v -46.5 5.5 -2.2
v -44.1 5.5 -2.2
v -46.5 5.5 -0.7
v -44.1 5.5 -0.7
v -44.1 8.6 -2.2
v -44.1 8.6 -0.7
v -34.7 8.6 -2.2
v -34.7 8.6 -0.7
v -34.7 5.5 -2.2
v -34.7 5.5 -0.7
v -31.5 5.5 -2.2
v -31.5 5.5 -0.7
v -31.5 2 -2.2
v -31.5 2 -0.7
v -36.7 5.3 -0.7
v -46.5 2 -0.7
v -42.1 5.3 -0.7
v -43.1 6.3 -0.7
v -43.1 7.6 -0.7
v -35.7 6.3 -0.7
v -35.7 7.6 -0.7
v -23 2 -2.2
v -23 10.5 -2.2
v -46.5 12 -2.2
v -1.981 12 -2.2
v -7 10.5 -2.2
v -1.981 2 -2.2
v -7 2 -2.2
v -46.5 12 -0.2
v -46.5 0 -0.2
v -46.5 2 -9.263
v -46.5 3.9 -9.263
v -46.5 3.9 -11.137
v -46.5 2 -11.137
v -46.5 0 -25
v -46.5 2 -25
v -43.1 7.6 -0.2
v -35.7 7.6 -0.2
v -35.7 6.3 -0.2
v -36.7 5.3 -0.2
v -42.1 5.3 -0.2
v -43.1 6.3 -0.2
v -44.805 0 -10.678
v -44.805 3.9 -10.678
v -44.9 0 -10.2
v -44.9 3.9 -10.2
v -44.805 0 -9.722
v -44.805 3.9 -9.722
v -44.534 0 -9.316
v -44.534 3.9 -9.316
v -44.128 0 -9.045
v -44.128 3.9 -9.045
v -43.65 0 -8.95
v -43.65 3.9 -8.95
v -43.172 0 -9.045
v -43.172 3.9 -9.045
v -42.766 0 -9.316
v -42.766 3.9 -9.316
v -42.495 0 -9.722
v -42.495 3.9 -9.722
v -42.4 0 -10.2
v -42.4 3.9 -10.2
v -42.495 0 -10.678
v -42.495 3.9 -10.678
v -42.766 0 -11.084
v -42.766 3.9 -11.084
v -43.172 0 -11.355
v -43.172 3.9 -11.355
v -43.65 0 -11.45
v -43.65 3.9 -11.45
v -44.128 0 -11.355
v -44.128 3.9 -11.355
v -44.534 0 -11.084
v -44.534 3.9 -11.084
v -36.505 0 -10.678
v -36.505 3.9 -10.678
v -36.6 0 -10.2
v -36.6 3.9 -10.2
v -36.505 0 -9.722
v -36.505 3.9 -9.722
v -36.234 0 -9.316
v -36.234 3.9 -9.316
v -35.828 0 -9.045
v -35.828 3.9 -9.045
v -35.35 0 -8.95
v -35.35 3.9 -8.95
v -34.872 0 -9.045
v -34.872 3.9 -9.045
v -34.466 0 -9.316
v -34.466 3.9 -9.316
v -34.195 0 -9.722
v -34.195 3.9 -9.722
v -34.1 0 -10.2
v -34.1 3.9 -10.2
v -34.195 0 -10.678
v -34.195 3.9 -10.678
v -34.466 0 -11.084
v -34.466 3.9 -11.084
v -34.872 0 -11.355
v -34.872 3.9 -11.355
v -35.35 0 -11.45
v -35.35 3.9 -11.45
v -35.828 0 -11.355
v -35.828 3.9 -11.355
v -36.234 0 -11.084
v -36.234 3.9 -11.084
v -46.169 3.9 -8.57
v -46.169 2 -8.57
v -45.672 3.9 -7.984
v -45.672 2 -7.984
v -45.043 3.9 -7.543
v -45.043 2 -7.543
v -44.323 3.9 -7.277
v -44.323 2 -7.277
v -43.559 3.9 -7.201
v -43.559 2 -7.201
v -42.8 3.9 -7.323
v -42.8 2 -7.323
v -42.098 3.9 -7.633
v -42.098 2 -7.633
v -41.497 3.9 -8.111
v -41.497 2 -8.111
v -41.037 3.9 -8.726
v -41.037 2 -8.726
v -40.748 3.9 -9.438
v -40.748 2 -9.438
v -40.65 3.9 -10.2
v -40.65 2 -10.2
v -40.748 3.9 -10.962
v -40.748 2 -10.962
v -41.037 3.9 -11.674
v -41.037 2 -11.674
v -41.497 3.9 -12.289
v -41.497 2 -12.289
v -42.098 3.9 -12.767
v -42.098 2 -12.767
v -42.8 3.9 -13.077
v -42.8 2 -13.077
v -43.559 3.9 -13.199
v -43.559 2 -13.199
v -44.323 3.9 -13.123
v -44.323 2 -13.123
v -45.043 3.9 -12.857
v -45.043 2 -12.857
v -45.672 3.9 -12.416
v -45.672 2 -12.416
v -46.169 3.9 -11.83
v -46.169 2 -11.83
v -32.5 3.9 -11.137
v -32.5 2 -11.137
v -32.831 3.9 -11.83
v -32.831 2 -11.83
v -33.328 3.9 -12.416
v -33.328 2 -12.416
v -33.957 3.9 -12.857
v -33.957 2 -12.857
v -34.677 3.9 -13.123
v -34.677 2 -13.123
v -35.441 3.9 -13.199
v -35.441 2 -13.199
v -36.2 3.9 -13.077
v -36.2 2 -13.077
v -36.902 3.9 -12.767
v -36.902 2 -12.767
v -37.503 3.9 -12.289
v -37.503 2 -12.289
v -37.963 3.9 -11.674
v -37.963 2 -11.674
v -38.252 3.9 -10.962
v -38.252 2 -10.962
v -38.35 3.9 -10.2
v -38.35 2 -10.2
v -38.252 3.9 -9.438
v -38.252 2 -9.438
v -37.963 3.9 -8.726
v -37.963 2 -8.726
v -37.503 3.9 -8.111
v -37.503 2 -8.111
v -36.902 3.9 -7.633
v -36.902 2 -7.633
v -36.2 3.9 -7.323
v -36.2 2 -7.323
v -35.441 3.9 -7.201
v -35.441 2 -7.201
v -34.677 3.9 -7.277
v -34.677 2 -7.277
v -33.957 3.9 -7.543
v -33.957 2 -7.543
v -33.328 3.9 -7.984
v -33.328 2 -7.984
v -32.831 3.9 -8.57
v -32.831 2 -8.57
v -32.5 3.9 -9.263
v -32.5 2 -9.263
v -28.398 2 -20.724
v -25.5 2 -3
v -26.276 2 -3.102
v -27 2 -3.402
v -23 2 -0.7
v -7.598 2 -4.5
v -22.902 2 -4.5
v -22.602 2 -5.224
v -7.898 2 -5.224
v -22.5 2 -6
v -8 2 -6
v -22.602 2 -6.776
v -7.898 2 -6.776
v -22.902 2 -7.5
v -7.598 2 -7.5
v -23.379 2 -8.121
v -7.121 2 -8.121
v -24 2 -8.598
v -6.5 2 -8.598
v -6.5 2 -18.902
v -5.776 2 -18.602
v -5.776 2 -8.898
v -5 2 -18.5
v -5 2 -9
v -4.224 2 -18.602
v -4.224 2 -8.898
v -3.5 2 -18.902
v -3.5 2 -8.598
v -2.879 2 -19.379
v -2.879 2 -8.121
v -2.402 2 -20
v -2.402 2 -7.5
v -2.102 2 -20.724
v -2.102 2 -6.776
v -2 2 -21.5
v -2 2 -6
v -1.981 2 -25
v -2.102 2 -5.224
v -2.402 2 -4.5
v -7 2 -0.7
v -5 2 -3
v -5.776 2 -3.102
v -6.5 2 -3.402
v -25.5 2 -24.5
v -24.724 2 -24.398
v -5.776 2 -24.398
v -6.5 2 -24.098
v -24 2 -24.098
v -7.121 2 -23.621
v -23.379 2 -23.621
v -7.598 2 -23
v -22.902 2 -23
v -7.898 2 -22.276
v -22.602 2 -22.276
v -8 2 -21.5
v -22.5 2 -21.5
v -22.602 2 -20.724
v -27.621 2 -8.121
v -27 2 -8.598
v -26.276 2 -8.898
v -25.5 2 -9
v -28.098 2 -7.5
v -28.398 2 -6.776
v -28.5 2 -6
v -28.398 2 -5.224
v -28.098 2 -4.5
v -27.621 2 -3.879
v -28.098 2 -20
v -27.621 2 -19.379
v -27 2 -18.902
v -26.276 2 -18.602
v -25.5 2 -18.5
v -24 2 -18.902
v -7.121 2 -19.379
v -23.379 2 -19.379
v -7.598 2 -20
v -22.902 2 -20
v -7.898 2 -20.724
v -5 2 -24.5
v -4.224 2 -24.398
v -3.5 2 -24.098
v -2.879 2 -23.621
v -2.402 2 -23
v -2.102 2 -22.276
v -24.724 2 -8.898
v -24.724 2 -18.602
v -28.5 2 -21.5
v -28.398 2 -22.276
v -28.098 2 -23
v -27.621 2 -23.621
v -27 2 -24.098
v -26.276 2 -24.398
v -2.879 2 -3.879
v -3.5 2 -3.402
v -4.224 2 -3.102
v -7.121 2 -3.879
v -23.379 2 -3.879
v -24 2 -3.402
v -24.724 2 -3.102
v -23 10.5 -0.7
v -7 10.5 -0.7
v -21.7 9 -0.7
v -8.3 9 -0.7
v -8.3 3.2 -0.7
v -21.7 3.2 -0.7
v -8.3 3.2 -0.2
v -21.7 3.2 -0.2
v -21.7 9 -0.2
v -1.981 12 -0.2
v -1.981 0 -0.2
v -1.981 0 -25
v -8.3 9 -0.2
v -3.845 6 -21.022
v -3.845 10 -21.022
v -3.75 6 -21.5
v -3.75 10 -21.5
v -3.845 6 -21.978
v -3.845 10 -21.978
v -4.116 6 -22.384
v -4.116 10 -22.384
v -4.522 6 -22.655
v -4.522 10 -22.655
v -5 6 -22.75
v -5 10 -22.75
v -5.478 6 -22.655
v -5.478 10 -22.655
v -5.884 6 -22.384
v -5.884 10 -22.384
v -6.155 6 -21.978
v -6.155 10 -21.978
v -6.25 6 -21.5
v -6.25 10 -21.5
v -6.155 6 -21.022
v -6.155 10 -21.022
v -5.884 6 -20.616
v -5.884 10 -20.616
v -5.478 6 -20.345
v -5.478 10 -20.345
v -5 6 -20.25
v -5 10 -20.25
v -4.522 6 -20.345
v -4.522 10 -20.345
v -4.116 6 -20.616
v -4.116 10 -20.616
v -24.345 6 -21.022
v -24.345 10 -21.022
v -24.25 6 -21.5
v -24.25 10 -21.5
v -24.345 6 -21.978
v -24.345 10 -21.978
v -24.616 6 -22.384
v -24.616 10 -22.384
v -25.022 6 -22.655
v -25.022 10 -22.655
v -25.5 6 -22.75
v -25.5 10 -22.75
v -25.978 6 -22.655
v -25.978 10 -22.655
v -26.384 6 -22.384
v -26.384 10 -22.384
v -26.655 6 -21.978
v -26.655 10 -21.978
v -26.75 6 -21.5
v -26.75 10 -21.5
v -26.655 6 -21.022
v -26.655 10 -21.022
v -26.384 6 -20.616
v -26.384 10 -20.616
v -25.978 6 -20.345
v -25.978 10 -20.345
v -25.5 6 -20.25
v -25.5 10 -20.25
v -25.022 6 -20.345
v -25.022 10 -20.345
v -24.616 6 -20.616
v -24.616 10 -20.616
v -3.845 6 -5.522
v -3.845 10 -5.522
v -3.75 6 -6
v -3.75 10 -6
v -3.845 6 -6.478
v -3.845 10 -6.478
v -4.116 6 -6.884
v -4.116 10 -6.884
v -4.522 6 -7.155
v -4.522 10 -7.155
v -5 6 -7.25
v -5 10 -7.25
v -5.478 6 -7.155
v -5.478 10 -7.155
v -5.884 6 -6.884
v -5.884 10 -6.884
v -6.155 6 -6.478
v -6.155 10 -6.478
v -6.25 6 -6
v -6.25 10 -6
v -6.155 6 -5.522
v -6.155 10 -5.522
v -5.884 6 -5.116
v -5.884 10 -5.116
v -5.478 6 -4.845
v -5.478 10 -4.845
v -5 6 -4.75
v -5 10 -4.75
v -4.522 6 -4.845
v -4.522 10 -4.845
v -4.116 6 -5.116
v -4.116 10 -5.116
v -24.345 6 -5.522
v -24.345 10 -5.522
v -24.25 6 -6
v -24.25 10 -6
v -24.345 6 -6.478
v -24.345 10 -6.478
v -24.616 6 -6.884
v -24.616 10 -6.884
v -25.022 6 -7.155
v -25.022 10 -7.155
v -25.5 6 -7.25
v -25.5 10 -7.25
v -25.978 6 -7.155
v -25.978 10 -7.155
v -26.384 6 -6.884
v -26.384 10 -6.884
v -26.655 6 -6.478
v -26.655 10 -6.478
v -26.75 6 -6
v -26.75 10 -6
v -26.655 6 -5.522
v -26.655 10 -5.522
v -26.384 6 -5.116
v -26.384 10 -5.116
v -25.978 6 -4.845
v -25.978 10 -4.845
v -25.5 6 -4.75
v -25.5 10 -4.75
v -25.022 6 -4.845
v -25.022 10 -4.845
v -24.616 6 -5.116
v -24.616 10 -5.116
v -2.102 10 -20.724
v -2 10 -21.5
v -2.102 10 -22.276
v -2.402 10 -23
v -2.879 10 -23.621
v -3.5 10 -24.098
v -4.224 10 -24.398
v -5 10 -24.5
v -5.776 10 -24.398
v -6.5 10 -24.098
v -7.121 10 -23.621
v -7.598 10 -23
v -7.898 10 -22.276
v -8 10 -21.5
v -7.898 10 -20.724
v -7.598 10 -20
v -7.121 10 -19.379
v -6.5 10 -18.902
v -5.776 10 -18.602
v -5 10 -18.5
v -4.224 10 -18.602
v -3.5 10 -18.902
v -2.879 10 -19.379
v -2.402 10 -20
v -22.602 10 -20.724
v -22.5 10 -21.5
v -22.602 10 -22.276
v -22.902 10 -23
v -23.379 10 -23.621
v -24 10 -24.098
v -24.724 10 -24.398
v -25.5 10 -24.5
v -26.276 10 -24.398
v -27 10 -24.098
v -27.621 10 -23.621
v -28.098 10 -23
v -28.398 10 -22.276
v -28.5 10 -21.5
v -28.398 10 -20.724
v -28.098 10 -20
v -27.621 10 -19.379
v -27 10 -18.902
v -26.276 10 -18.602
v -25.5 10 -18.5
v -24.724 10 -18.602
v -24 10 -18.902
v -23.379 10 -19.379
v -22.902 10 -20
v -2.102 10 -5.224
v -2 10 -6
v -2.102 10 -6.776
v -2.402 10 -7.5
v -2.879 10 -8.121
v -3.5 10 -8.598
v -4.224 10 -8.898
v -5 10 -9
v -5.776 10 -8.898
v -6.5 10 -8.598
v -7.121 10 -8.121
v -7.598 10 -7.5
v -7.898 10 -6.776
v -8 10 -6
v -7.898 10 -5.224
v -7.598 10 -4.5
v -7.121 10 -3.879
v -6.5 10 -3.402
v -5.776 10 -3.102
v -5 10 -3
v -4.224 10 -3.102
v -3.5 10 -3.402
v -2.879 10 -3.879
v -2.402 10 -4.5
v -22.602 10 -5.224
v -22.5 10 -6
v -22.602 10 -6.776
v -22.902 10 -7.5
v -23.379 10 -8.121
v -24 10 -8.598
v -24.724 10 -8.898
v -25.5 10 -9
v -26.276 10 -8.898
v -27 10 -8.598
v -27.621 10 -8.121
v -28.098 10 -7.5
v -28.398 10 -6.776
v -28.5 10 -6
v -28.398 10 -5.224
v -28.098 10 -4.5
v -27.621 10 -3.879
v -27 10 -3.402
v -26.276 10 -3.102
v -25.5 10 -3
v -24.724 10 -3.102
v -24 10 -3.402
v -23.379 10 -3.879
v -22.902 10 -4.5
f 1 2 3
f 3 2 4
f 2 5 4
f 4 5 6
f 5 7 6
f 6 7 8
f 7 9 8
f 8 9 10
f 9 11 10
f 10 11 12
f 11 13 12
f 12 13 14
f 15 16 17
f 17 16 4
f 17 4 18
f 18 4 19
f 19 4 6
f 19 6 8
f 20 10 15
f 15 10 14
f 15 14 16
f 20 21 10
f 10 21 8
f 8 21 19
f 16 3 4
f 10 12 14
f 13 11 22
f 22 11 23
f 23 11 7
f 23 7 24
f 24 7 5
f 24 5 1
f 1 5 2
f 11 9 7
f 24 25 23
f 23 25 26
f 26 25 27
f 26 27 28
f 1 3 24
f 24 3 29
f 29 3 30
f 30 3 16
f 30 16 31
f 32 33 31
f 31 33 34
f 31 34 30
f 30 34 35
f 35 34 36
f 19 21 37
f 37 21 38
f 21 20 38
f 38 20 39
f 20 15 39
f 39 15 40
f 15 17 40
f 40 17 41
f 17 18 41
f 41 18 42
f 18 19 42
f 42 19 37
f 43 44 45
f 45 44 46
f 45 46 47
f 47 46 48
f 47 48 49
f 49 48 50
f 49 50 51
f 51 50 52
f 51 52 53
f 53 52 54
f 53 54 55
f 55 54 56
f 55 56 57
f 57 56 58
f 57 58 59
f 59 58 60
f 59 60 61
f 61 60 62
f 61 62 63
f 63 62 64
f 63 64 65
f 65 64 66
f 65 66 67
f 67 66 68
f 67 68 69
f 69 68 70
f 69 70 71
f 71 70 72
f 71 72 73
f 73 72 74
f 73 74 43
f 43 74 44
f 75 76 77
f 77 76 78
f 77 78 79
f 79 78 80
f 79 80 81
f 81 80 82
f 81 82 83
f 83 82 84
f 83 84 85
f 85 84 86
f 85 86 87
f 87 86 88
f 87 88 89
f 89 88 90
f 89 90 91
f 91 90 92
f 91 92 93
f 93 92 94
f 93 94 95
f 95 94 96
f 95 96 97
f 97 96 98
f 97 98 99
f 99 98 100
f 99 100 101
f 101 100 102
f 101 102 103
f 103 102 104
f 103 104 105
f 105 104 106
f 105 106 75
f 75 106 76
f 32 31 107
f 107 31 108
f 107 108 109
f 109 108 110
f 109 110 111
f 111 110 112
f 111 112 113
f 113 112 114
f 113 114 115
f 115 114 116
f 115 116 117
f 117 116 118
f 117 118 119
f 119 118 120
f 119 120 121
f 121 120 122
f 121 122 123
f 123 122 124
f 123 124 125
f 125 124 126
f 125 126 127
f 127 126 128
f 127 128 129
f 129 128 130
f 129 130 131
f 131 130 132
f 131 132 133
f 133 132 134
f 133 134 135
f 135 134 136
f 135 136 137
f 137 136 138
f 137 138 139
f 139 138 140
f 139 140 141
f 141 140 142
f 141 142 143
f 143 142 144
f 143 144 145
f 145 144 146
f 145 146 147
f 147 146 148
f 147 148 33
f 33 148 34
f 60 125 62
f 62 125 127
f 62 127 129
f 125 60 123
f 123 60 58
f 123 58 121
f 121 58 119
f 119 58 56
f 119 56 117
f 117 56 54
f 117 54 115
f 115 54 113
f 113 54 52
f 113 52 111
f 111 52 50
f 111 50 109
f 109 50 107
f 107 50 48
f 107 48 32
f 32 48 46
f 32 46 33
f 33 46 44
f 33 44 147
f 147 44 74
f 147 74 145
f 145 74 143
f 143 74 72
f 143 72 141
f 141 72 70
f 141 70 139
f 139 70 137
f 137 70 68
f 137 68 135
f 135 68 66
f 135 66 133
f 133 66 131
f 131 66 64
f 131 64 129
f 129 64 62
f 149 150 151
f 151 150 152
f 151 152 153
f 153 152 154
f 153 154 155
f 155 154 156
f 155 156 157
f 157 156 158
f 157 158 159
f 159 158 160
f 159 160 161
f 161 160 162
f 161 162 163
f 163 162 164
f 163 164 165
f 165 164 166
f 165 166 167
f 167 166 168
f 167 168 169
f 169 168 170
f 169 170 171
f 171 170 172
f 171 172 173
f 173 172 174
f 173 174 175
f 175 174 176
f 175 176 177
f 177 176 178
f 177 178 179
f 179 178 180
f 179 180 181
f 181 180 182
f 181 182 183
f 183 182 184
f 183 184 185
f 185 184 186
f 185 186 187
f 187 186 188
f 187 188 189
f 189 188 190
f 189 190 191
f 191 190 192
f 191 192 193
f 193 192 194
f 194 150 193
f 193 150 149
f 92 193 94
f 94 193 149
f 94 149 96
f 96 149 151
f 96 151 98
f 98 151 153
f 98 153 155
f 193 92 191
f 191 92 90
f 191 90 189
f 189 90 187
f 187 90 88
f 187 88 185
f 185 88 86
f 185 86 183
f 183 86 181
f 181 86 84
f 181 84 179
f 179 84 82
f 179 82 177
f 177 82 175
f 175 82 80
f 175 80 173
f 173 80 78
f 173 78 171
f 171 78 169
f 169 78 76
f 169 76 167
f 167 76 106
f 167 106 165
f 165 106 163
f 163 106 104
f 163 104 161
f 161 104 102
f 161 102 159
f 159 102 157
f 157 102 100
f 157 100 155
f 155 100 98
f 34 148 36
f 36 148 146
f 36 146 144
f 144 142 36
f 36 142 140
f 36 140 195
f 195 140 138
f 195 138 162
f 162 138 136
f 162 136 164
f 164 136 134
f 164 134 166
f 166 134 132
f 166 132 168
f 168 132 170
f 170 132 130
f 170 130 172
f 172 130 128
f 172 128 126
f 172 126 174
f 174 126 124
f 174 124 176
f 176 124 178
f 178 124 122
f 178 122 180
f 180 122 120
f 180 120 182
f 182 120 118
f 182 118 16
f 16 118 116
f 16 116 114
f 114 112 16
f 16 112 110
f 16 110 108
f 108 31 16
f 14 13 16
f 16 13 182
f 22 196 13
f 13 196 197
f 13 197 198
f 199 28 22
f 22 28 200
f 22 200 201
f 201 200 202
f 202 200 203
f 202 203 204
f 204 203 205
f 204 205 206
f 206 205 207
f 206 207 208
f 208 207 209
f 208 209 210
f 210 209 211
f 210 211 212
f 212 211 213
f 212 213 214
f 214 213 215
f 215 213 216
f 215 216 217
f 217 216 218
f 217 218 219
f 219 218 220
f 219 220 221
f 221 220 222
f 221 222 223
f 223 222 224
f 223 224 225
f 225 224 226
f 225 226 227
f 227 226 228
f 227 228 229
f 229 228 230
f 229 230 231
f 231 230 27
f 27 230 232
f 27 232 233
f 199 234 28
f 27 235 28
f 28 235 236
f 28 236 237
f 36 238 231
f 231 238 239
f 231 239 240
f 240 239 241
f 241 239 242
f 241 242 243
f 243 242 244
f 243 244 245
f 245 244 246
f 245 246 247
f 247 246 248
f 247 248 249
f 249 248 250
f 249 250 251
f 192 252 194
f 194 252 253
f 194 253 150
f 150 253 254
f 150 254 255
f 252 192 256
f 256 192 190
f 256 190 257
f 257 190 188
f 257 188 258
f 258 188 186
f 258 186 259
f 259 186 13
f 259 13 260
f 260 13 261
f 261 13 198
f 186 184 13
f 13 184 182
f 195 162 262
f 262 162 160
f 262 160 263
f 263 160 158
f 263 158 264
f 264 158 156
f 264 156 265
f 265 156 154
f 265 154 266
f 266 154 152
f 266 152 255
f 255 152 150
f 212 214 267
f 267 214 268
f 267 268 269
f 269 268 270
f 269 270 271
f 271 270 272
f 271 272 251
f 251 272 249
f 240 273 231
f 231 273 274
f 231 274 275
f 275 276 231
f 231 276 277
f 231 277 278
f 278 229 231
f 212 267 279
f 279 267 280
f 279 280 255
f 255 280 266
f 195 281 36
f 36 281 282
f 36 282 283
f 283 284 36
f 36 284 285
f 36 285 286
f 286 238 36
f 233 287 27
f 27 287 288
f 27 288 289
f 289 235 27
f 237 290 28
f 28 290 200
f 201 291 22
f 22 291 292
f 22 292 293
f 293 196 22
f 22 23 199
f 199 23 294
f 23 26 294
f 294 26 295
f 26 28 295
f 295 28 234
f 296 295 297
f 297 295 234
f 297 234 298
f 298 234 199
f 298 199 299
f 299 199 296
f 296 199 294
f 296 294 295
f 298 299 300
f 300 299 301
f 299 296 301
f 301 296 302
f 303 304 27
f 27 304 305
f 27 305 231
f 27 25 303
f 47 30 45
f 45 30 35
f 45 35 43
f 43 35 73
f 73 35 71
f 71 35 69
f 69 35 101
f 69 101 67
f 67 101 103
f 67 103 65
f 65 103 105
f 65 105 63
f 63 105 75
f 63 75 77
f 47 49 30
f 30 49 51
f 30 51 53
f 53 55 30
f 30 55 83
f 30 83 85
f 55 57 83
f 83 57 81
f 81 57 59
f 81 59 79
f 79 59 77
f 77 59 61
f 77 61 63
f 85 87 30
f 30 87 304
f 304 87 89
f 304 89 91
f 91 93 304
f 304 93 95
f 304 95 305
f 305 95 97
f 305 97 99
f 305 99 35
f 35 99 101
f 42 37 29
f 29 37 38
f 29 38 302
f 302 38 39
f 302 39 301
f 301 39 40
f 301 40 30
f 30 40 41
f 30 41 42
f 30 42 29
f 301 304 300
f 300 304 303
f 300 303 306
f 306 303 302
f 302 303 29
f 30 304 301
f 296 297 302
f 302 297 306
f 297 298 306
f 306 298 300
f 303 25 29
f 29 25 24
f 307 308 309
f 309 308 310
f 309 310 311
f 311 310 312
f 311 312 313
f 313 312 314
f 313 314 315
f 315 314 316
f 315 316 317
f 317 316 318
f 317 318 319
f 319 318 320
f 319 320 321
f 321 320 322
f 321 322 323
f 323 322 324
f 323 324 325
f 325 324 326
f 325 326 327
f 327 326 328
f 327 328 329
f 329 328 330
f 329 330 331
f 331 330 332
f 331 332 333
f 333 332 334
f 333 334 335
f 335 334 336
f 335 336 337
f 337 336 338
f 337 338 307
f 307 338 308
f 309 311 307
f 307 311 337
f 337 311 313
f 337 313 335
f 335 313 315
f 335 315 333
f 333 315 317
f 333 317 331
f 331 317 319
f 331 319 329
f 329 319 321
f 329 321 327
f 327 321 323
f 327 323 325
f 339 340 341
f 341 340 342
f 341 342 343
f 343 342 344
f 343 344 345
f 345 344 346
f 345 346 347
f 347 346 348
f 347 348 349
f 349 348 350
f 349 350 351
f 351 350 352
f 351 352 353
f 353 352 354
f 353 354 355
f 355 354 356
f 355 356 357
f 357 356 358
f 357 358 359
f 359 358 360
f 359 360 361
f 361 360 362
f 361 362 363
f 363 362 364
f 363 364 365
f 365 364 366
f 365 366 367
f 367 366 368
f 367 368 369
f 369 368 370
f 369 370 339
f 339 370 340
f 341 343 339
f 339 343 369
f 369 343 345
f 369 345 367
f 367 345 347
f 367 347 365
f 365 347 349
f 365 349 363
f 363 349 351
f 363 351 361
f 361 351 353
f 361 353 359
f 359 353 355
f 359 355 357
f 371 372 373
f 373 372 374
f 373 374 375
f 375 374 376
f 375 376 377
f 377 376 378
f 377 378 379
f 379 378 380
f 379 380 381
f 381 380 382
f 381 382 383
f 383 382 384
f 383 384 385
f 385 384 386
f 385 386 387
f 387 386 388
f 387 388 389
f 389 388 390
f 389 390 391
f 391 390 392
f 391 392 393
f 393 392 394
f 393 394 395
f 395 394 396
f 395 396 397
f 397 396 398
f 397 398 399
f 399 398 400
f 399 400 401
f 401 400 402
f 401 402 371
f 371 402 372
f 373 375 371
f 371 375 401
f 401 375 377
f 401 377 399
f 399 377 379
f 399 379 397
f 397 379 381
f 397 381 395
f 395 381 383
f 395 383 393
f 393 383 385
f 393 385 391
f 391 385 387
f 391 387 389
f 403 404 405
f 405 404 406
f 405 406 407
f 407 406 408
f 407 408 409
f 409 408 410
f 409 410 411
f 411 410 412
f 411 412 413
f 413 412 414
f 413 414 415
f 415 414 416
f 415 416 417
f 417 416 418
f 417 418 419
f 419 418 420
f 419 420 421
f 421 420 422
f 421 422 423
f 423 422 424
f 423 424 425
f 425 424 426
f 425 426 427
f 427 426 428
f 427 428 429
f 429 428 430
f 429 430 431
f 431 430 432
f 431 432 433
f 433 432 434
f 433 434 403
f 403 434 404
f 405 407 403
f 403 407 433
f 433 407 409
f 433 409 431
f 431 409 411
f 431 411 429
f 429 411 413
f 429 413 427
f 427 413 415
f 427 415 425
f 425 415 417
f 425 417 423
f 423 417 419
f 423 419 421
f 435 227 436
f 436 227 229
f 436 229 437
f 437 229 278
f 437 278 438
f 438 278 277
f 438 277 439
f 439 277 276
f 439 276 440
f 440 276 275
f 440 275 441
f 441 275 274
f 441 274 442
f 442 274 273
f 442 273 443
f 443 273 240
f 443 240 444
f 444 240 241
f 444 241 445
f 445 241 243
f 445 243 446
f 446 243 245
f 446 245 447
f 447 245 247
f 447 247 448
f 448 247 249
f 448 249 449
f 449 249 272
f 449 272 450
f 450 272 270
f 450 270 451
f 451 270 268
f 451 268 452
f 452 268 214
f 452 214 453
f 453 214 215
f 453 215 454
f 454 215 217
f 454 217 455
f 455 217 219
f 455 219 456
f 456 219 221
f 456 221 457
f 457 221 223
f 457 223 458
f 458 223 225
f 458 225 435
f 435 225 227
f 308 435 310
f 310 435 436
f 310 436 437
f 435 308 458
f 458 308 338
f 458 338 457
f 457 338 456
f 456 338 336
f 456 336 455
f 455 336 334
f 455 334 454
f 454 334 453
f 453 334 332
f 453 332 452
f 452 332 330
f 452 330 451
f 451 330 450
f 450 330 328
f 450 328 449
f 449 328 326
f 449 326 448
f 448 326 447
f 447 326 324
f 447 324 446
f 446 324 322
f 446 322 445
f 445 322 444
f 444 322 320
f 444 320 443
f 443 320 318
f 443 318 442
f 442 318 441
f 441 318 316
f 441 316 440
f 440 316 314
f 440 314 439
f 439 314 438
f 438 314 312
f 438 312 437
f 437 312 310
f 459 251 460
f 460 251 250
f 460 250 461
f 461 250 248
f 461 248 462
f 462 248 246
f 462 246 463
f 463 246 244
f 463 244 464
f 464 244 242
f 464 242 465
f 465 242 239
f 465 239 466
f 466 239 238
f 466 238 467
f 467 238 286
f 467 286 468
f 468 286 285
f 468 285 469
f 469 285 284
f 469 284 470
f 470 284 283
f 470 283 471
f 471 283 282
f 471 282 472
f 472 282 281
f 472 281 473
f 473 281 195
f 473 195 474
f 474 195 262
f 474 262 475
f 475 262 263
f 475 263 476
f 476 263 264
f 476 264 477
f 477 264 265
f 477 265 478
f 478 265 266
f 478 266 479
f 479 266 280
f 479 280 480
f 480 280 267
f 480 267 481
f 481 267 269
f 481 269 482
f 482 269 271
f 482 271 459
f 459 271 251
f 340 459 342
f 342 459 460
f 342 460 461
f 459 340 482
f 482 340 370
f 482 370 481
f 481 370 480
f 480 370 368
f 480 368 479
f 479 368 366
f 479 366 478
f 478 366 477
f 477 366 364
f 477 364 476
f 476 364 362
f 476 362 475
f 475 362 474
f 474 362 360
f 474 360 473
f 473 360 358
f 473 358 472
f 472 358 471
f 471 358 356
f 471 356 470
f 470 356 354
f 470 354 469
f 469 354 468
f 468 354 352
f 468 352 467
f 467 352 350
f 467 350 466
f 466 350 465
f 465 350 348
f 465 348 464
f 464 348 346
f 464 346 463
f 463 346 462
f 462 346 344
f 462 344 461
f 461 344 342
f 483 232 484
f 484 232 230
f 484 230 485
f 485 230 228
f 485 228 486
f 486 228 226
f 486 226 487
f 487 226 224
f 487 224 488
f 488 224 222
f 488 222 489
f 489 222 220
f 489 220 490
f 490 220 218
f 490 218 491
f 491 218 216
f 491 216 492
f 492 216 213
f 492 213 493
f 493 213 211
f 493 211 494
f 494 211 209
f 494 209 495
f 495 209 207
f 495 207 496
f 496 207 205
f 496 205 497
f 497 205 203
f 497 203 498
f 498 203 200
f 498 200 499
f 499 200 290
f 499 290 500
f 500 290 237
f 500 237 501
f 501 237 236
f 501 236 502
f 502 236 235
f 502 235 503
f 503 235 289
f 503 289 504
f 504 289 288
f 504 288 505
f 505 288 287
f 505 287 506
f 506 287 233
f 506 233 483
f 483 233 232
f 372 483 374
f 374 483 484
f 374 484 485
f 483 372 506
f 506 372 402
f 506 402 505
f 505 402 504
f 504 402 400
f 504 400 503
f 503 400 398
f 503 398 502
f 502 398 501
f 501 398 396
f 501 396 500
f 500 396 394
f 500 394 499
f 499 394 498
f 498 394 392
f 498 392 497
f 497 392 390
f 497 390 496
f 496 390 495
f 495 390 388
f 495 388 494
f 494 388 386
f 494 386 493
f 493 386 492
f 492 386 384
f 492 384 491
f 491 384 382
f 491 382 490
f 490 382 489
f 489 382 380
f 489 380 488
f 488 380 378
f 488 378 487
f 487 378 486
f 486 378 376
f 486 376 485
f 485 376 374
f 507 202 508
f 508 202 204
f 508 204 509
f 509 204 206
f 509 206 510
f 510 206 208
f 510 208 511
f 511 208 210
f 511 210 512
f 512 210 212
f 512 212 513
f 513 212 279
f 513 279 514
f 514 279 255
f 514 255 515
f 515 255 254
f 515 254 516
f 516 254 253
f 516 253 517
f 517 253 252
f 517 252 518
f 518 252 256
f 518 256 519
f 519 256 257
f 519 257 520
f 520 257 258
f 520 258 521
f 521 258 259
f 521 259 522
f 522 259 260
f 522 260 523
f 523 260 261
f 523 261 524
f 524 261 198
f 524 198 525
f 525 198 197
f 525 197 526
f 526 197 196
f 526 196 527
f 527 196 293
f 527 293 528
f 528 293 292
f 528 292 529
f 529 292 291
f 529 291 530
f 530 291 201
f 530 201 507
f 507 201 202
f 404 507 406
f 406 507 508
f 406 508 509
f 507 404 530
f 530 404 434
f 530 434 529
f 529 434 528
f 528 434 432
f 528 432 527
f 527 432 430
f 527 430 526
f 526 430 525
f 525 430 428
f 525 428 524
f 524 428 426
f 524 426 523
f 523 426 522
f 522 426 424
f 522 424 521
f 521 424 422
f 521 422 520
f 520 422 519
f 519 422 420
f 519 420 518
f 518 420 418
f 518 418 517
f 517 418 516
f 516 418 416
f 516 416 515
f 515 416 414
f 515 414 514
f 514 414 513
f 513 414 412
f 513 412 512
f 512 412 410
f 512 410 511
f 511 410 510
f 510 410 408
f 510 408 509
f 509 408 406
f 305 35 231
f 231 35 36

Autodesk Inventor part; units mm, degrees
ref_plane "YZ Plane" through (0, 0, 0) normal (1, 0, 0) x (0, 1, 0)
ref_plane "XZ Plane" through (0, 0, 0) normal (0, 1, 0) x (-1, 0, 0)
ref_plane "XY Plane" through (0, 0, 0) normal (0, 0, 1) x (1, 0, 0)
sketch "Sketch1" plane through (0, 0, 0) normal (0, 1, 0) x (-1, 0, 0)
  line L0 (0, 0) -> (30, 0)
  line L1 (30, 0) -> (30, -25)
  line L2 (30, -25) -> (0, -25)
  line L3 (0, -25) -> (0, 0)
  dimension "d0" = 30
  dimension "d1" = 25
extrude "Extrusion1" add sketch "Sketch1" along normal blind 2
sketch "Sketch2" plane through (0, 2, 0) normal (0, 1, 0) x (1, 0, 0)
  circle A0 centre (-5, 6) radius 3
  circle A1 centre (-5, 21.5) radius 3
  circle A2 centre (-25.5, 6) radius 3
  circle A3 centre (-25.5, 21.5) radius 3
  line L0 (0, 0) -> (0, 25) projected
  line L1 (0, 25) -> (-30, 25) projected
  dimension "d4" = 15.5
  dimension "d5" = 15.5
  dimension "d6" = 20.5
  dimension "d7" = 20.5
  dimension "d8" = 0
  dimension "d9" = 0
  dimension "d10" = 6
  dimension "d11" = 6
  dimension "d12" = 6
  dimension "d13" = 6
  dimension "d14" = 5
  dimension "d15" = 3.5
extrude "Extrusion2" add sketch "Sketch2" along normal blind 8
sketch "Sketch3" plane through (-25.5, 10, -6) normal (0, 1, 0) x (1, 0, 0)
  circle A0 centre (20.5, 0) radius 3 projected
  circle A1 centre (20.5, 0) radius 1.25
  circle A2 centre (20.5, 15.5) radius 3 projected
  circle A3 centre (20.5, 15.5) radius 1.25
  circle A4 centre (0, 15.5) radius 3 projected
  circle A5 centre (0, 15.5) radius 1.25
  circle A6 centre (0, 0) radius 3 projected
  circle A7 centre (0, 0) radius 1.25
  point P0 (25.5, -6)
  dimension "d18" = 2.5
  dimension "d19" = 2.5
  dimension "d20" = 2.5
  dimension "d21" = 2.5
extrude "Extrusion3" cut sketch "Sketch3" against normal blind 4 contours A1 | A3 | A5 | A7
sketch "Sketch4" plane through (0, 2, 0) normal (0, 1, 0) x (1, 0, 0)
  line L0 (-30, 25) -> (-30, 0) projected
  line L1 (0, 0) -> (0, 25) projected
  line L2 (-30, 0.2) -> (0, 0.2)
  line L3 (0, 0.2) -> (0, 2.2)
  line L4 (0, 2.2) -> (-30, 2.2)
  line L5 (-30, 2.2) -> (-30, 0.2)
  circle A0 centre (-25.5, 6) radius 1.25 projected
  point P0 (0, 0.2)
  dimension "d28" = 5.8
  dimension "d29" = 2
extrude "Extrusion4" add sketch "Sketch4" along normal blind 10 contours L4 L1 L2 L0
sketch "Sketch5" plane through (-30, 2, -0.2) normal (0, 0, 1) x (1, 0, 0)
  line L0 (21.7, 7) -> (8.3, 7)
  line L1 (8.3, 7) -> (8.3, 1.2)
  line L2 (8.3, 1.2) -> (21.7, 1.2)
  line L3 (21.7, 1.2) -> (21.7, 7)
  line L4 (28, 8) -> (22, 8) projected
  line L5 (0, 0) -> (0, 10) projected
  point P0 (30, -2)
  point P1 (25, 8)
  dimension "d32" = 13.4
  dimension "d33" = 5.8
  dimension "d36" = 1
  dimension "d37" = 8.3
extrude "Extrusion5" cut sketch "Sketch5" against normal blind 10
sketch "Sketch6" plane through (0, 2, 0) normal (0, 1, 0) x (1, 0, 0)
  line L0 (0, 25) -> (-30, 25) projected
  line L1 (-30, 0.2) -> (0, 0.2) projected
  line L2 (-29.3171, 25) -> (-1.9814, 25)
  line L3 (-1.9814, 25) -> (-1.9814, 0.2)
  line L4 (-1.9814, 0.2) -> (-29.3171, 0.2)
  line L5 (-29.3171, 0.2) -> (-29.3171, 25)
  line L6 (-32.5014, 28.1843) -> (1.2029, 28.1843)
  line L7 (1.2029, 28.1843) -> (1.2029, -2.9843)
  line L8 (1.2029, -2.9843) -> (-32.5014, -2.9843)
  line L9 (-32.5014, -2.9843) -> (-32.5014, 28.1843)
  point P0 (-29.3171, 0.2)
extrude "Extrusion6" cut sketch "Sketch6" along normal mid plane 100
sketch "Sketch7" plane through (-1.9814, 2, -2.2) normal (0, 0, -1) x (-1, 0, 0)
  line L0 (0, 0) -> (27.3358, 0) projected
  line L1 (5.0186, 8.5) -> (21.0186, 8.5)
  line L2 (21.0186, 8.5) -> (21.0186, 0)
  line L3 (21.0186, 0) -> (5.0186, 0)
  line L4 (5.0186, 0) -> (5.0186, 8.5)
  line L5 (6.3186, 1.2) -> (6.3186, 7) projected
  line L6 (6.3186, 7) -> (19.7186, 7) projected
  point P0 (-1.9814, -2)
  point P1 (5.0186, 0)
  dimension "d42" = 16
  dimension "d43" = 1.3
  dimension "d44" = 1.5
extrude "Extrusion7" cut sketch "Sketch7" against normal blind 1.5
sketch "Sketch12" plane through (0, 2, 0) normal (0, 1, 0) x (1, 0, 0)
  line L0 (-29.3171, 0.2) -> (-1.9814, 0.2) projected
  line L1 (-29.3171, 0.2) -> (-46.5, 0.2)
  line L2 (-46.5, 0.2) -> (-46.5, 25)
  line L3 (-46.5, 25) -> (-29.3171, 25)
  line L4 (-29.3171, 25) -> (-29.3171, 0.2)
  circle A0 centre (-25.5, 6) radius 3 projected
  point P0 (0, 0)
  dimension "d49" = 18
extrude "Extrusion8" add sketch "Sketch12" against normal blind 2 contours L1 L2 L3 L4
sketch "Sketch13" plane through (0, 2, 0) normal (0, 1, 0) x (1, 0, 0)
  line L0 (-29.3171, 2.2) -> (-23, 2.2) projected
  line L1 (-46.5, 25) -> (-46.5, 0.2) projected
  line L2 (-29.3171, 2.2) -> (-46.5, 2.2)
  line L3 (-46.5, 2.2) -> (-46.5, 0.2)
  line L4 (-46.5, 0.2) -> (-29.3171, 0.2)
  line L5 (-29.3171, 0.2) -> (-29.3171, 2.2)
  point P0 (0, 0)
extrude "Extrusion9" add sketch "Sketch13" along normal up to surface (10 mm away)
sketch "Sketch14" plane through (0, 2, 0) normal (0, 1, 0) x (1, 0, 0)
  line L0 (-46.5, 0.2) -> (-46.5, 25) projected
  line L1 (-1.9814, 0.2) -> (-46.5, 0.2) projected
  line L2 (-46.5, 25) -> (-32.5, 25)
  line L3 (-32.5, 25) -> (-32.5, 0.2)
  line L4 (-32.5, 0.2) -> (-46.5, 0.2)
  line L5 (-46.5, 0.2) -> (-46.5, 25)
  circle A0 centre (-35.35, 10.2) radius 3
  arc A1 (-46.5, 9.2633) -> (-46.5, 11.1367) centre (-43.65, 10.2) ccw
  point P0 (0, 0)
  point P1 (-32.5, 9.2633)
  point P2 (-32.5, 11.1367)
  dimension "d54" = 14
  dimension "d55" = 10
  dimension "d56" = 10
  dimension "d57" = 8.3
  dimension "d58" = 6
  dimension "d59" = 6
  dimension "d60" = 2.85
extrude "Extrusion10" add sketch "Sketch14" along normal blind 1.9 contours L0 A1 | A0 L3 picked at (-36.2658, 10.5122)
sketch "Sketch15" plane through (0, 3.9, 0) normal (0, 1, 0) x (1, 0, 0)
  arc A0 (-32.5, 11.1367) -> (-32.5, 9.2633) centre (-35.35, 10.2) ccw projected
  circle A1 centre (-35.35, 10.2) radius 1.25
  arc A2 (-46.5, 9.2633) -> (-46.5, 11.1367) centre (-43.65, 10.2) ccw projected
  circle A3 centre (-43.65, 10.2) radius 1.25
  point P0 (0, 0)
  dimension "d63" = 2.5
  dimension "d64" = 2.5
extrude "Extrusion11" cut sketch "Sketch15" against normal blind 4
sketch "Sketch16" plane through (-1.9814, 2, -2.2) normal (0, 0, -1) x (-1, 0, 0)
  line L0 (33.7186, 5.6) -> (41.1186, 5.6)
  line L1 (41.1186, 5.6) -> (41.1186, 4.3)
  line L2 (40.1186, 3.3) -> (34.7186, 3.3)
  line L3 (33.7186, 4.3) -> (33.7186, 5.6)
  line L4 (36.3686, 0) -> (36.3686, 1.9) projected
  line L5 (36.3686, 1.5842) -> (36.3686, 2.8612)
  line L6 (38.6686, 0) -> (38.6686, 1.9) projected
  line L7 (38.6686, 1.3572) -> (38.6686, 2.8612)
  line L8 (36.3686, 1.9) -> (30.5186, 1.9) projected
  line L9 (34.7186, 3.3) -> (40.1186, 3.3)
  line L10 (34.7186, 3.3) -> (33.7186, 4.3)
  line L11 (40.1186, 3.3) -> (41.1186, 4.3)
  point P0 (-1.9814, -2)
  dimension "d68" = 7.4
  dimension "d69" = 2.3
  dimension "d70" = 2.65
  dimension "d71" = 1.4
  dimension "d75" = 1
  dimension "d76" = 1
  dimension "d77" = 135
extrude "Extrusion12" cut sketch "Sketch16" against normal blind 4
sketch "Sketch17" plane through (-1.9814, 2, -2.2) normal (0, 0, -1) x (-1, 0, 0)
  line L0 (0, 0) -> (44.5186, 0) projected
  line L1 (29.5186, 3.5) -> (44.5186, 3.5)
  line L2 (44.5186, 3.5) -> (44.5186, 0)
  line L3 (44.5186, 0) -> (29.5186, 0)
  line L4 (29.5186, 0) -> (29.5186, 3.5)
  line L5 (36.3686, 1.9) -> (30.5186, 1.9) projected
  line L6 (36.3686, 1.9) -> (38.6686, 1.9)
  line L7 (38.6686, 0) -> (38.6686, 1.9) projected
  line L8 (37.5186, 1.9) -> (37.5186, 2.6823)
  line L9 (32.7186, 3.5) -> (42.1186, 3.5)
  line L10 (42.1186, 3.5) -> (42.1186, 6.6)
  line L11 (42.1186, 6.6) -> (32.7186, 6.6)
  line L12 (32.7186, 6.6) -> (32.7186, 3.5)
  line L13 (33.7186, 5.6) -> (41.1186, 5.6) projected
  line L14 (33.7186, 4.3) -> (33.7186, 5.6) projected
  line L15 (41.1186, 5.6) -> (41.1186, 4.3) projected
  point P0 (-1.9814, -2)
  point P1 (29.5186, 0)
  dimension "d80" = 1.6
  dimension "d81" = 8
  dimension "d82" = 1
  dimension "d83" = 1
  dimension "d84" = 1
extrude "Extrusion13" cut sketch "Sketch17" against normal blind 1.5
sketch "Sketch18" plane through (-1.9814, 2, -0.7) normal (0, 0, -1) x (-1, 0, 0)
  point P0 (-1.9814, -2)
properties part number "USB"
